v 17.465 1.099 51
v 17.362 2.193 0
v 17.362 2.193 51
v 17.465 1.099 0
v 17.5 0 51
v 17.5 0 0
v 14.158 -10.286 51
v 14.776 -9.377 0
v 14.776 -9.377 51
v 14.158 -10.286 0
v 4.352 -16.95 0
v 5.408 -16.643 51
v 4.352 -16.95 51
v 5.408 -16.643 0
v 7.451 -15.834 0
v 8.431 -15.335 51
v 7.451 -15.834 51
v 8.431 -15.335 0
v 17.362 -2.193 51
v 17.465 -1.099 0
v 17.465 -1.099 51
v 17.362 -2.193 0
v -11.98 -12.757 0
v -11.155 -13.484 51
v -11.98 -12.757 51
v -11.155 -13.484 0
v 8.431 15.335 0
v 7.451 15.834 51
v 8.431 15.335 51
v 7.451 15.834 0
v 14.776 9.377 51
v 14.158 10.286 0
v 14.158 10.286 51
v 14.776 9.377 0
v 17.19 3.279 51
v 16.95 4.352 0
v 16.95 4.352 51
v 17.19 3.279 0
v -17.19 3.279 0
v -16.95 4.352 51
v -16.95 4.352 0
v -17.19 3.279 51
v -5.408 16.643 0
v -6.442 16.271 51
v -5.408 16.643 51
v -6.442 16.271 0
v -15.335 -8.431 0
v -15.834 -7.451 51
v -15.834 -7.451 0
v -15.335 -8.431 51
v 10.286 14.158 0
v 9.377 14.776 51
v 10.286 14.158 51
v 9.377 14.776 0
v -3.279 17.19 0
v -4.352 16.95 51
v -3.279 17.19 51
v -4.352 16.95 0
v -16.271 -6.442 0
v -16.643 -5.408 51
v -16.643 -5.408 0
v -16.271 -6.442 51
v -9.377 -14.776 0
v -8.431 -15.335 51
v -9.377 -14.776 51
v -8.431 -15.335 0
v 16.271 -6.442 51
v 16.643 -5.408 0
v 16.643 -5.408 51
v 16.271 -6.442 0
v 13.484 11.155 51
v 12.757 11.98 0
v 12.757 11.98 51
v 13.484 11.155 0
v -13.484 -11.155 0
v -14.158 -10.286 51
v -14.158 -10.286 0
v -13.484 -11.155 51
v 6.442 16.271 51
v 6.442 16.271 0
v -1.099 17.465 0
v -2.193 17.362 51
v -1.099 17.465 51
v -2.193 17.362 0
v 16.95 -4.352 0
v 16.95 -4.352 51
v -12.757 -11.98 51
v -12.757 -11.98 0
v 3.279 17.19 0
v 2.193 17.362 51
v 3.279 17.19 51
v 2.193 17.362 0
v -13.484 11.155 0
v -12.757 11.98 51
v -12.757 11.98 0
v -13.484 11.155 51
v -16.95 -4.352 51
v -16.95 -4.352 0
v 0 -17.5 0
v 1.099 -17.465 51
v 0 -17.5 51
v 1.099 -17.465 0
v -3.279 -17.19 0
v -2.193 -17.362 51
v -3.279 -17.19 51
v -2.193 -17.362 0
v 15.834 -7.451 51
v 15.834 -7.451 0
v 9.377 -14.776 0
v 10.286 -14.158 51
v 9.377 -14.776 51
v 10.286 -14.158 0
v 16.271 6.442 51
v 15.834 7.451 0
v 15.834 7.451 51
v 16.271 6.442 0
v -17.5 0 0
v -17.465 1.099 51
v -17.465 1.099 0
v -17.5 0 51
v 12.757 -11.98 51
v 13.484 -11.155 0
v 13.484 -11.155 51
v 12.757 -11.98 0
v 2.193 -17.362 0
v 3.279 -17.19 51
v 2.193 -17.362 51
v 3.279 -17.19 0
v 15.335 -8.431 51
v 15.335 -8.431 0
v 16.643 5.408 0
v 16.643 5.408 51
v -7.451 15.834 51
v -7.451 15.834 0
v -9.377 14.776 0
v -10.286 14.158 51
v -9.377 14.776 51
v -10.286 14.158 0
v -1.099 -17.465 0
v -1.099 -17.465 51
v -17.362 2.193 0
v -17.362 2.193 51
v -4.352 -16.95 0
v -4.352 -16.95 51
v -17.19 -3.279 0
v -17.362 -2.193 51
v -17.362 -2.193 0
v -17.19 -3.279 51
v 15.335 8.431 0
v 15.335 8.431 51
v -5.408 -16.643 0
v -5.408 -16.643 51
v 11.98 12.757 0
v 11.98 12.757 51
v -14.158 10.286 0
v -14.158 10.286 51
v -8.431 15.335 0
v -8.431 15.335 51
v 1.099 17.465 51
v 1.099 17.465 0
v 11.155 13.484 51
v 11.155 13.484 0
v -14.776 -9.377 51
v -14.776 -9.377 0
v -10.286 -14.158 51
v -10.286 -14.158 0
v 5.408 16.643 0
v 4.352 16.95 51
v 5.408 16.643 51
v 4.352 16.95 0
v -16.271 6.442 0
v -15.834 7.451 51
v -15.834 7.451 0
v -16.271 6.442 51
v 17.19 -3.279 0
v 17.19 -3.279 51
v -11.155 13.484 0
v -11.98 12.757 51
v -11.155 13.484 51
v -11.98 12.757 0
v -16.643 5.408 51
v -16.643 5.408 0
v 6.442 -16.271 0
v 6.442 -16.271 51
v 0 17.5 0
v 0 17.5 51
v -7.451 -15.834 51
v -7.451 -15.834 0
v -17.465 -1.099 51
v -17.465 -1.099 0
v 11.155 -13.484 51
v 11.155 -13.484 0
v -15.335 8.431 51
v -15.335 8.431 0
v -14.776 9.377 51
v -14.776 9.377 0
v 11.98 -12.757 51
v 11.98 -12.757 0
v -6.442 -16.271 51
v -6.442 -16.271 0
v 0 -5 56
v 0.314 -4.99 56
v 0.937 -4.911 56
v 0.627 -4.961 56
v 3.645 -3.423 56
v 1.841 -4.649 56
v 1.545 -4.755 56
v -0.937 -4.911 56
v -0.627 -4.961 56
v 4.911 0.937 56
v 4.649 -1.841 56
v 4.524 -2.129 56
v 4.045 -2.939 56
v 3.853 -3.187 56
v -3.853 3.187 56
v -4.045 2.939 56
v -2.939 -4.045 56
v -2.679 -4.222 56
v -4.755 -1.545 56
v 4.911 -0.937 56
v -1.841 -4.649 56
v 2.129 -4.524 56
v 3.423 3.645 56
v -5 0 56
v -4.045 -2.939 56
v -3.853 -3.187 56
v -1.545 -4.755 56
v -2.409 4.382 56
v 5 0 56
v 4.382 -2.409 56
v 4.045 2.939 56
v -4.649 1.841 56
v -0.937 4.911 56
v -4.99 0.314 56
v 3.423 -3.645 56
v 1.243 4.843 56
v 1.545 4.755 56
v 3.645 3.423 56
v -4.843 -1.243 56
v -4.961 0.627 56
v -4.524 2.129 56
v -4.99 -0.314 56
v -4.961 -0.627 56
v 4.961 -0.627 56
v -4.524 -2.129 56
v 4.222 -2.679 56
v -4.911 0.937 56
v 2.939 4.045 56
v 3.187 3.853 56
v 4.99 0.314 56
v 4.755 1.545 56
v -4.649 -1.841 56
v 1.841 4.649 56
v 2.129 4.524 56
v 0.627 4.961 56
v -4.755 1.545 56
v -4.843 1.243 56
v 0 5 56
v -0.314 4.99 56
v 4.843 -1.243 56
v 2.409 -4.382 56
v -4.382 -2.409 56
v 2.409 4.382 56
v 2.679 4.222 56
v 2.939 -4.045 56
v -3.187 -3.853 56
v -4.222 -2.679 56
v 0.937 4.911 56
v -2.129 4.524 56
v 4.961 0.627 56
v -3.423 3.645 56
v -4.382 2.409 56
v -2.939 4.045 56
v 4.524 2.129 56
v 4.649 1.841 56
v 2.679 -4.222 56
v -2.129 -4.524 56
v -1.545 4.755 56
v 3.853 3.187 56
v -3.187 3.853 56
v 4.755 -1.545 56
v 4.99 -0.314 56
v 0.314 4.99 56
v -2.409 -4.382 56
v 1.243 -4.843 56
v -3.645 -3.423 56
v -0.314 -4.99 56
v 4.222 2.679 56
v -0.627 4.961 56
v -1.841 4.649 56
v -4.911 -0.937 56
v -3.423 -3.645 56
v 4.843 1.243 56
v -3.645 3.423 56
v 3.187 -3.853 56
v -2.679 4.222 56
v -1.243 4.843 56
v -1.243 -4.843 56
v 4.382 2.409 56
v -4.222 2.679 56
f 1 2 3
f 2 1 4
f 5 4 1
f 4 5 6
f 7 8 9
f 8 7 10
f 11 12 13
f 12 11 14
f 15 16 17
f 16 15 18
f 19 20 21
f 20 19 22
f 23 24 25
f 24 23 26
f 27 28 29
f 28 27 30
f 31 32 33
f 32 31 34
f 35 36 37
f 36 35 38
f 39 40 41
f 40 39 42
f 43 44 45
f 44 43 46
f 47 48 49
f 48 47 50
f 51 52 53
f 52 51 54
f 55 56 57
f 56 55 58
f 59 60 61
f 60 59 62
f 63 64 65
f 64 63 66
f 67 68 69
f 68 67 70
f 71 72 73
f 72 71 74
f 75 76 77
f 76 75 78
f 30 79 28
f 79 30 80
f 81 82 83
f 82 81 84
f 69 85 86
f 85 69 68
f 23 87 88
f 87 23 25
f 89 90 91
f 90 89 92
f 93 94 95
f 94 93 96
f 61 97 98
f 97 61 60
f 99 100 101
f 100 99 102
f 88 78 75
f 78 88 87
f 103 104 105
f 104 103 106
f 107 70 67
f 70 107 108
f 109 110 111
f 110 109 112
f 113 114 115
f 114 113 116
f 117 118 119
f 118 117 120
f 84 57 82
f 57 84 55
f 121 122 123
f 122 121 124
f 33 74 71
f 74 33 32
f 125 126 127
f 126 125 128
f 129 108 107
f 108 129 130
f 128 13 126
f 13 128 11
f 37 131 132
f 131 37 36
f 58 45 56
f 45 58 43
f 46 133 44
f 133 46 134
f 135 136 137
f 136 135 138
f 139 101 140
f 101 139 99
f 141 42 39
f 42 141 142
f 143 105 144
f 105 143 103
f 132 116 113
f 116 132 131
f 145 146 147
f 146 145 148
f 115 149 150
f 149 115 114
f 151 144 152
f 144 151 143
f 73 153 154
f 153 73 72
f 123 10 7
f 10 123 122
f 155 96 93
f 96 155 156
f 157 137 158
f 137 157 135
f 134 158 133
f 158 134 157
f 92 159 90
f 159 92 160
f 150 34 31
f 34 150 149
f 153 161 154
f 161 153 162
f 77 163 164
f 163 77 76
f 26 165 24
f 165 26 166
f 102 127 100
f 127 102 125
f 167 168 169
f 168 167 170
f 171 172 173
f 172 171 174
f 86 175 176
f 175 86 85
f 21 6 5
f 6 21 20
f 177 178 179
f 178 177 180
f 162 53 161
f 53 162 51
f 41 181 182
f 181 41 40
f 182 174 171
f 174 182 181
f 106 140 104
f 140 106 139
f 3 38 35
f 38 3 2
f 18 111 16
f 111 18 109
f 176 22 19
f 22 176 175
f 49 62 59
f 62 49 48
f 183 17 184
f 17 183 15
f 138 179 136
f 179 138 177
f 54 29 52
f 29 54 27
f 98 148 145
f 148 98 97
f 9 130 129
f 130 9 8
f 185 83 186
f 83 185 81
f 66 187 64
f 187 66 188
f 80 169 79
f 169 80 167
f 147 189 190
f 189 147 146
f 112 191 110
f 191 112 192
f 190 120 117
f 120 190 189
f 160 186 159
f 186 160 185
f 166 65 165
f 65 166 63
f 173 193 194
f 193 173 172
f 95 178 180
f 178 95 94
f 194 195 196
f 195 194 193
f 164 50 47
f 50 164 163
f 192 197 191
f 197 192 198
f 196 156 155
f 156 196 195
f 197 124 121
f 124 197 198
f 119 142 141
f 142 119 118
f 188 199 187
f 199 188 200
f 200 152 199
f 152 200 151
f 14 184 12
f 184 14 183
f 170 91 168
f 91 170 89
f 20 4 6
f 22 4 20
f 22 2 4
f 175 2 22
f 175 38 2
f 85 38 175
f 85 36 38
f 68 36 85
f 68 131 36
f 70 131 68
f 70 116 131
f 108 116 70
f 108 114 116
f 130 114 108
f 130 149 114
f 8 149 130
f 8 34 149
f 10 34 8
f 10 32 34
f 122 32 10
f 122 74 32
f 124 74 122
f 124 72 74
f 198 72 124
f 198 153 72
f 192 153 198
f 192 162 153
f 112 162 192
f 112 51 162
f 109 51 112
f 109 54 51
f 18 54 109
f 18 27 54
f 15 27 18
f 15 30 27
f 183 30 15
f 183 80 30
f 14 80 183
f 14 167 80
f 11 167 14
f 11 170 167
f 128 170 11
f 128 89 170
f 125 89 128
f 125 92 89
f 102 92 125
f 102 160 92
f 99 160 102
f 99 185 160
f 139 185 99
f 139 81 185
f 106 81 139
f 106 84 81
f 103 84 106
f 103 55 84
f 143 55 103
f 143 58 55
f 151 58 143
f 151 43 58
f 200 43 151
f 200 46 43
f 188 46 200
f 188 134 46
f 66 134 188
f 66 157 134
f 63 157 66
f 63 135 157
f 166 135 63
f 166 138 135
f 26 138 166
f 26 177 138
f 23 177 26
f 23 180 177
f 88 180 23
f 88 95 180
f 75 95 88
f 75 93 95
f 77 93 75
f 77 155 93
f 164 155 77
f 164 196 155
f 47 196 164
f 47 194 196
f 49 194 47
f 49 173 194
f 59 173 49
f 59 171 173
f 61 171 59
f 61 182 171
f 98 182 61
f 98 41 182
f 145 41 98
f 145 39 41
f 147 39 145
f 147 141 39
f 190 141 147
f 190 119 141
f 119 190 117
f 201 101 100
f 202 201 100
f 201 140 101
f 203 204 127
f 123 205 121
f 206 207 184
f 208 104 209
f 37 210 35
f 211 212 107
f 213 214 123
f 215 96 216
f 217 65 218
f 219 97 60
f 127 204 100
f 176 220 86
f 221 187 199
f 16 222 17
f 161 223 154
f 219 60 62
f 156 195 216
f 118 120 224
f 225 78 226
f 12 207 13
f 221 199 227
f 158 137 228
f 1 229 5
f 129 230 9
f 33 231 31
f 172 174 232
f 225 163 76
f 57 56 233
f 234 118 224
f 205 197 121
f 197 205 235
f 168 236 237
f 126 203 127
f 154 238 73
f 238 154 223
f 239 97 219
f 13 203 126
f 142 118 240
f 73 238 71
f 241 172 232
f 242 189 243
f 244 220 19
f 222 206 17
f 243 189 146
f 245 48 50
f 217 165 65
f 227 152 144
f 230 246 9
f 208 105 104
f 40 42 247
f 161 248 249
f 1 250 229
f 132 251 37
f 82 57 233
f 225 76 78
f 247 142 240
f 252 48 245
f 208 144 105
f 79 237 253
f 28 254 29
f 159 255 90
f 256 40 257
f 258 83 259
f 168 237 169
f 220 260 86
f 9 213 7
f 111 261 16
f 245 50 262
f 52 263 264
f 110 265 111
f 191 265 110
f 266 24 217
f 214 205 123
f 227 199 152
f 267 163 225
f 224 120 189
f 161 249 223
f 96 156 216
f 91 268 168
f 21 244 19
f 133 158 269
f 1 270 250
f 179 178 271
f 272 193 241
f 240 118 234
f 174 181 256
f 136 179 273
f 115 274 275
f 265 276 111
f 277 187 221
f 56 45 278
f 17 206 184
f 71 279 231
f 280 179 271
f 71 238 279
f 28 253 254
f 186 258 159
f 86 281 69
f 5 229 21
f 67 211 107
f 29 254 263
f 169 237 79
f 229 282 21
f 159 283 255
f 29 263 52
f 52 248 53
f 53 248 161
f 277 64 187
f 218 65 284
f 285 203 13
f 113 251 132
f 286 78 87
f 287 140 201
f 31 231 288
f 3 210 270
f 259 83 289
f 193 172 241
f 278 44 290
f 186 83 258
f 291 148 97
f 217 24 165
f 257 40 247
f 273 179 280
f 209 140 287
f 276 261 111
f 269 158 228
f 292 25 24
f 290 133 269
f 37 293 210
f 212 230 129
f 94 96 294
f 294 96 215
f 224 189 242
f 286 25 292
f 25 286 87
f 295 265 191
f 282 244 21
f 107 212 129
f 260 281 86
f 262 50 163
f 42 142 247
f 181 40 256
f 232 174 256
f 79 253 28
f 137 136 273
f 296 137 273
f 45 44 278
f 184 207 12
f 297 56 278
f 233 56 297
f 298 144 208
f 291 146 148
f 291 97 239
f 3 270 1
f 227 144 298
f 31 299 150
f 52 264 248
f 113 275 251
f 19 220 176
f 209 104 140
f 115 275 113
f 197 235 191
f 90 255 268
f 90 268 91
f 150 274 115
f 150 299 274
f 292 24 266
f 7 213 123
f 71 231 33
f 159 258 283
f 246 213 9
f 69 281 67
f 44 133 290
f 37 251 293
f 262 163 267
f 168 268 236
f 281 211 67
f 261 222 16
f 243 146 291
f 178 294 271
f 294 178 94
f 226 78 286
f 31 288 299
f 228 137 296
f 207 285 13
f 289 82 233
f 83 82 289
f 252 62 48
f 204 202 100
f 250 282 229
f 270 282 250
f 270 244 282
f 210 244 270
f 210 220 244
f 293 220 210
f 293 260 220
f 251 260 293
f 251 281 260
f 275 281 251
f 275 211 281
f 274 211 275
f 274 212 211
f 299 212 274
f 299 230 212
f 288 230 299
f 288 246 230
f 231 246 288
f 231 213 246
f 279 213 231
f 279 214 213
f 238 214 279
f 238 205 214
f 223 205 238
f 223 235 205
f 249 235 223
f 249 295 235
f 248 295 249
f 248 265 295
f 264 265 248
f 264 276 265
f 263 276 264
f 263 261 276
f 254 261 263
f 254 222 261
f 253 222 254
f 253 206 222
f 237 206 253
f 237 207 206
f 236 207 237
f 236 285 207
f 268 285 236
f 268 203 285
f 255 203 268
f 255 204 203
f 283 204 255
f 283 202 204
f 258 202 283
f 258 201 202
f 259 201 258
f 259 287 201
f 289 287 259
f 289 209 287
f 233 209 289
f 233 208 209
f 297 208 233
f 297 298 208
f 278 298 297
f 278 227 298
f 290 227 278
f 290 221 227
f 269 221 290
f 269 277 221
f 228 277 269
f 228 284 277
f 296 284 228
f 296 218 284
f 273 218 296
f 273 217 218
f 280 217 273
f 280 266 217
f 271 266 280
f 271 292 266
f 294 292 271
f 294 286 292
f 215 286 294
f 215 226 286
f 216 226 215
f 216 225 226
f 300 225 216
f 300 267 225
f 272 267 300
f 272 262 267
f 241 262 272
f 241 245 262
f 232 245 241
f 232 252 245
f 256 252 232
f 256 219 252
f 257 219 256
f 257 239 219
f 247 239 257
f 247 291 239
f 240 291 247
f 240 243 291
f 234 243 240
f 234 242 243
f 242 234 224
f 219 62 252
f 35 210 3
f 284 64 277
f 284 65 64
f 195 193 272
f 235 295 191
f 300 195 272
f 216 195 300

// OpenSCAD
// Cylinder parameters
diameter = 35;   // mm
height   = 50;   // mm

screw_length = 30;
screw_diameter = 10;

// difference() {

   union() {
        // bottom part
        cylinder(
            h = height,
            d = diameter,
            $fn = 100
        );

        // top part
        translate([0, 0, height])
        hull() {
            cylinder(h = 1, d = diameter, $fn = 100);
            translate([0, 0, 5])
                cylinder(h = 1, d = 10, $fn = 100);
        }
    }

//    translate([0, 0, -0.01])
//    cylinder(
//        h = screw_length + 0.01,
//        d = screw_diameter,
//        $fn = 100
//    );
//}
